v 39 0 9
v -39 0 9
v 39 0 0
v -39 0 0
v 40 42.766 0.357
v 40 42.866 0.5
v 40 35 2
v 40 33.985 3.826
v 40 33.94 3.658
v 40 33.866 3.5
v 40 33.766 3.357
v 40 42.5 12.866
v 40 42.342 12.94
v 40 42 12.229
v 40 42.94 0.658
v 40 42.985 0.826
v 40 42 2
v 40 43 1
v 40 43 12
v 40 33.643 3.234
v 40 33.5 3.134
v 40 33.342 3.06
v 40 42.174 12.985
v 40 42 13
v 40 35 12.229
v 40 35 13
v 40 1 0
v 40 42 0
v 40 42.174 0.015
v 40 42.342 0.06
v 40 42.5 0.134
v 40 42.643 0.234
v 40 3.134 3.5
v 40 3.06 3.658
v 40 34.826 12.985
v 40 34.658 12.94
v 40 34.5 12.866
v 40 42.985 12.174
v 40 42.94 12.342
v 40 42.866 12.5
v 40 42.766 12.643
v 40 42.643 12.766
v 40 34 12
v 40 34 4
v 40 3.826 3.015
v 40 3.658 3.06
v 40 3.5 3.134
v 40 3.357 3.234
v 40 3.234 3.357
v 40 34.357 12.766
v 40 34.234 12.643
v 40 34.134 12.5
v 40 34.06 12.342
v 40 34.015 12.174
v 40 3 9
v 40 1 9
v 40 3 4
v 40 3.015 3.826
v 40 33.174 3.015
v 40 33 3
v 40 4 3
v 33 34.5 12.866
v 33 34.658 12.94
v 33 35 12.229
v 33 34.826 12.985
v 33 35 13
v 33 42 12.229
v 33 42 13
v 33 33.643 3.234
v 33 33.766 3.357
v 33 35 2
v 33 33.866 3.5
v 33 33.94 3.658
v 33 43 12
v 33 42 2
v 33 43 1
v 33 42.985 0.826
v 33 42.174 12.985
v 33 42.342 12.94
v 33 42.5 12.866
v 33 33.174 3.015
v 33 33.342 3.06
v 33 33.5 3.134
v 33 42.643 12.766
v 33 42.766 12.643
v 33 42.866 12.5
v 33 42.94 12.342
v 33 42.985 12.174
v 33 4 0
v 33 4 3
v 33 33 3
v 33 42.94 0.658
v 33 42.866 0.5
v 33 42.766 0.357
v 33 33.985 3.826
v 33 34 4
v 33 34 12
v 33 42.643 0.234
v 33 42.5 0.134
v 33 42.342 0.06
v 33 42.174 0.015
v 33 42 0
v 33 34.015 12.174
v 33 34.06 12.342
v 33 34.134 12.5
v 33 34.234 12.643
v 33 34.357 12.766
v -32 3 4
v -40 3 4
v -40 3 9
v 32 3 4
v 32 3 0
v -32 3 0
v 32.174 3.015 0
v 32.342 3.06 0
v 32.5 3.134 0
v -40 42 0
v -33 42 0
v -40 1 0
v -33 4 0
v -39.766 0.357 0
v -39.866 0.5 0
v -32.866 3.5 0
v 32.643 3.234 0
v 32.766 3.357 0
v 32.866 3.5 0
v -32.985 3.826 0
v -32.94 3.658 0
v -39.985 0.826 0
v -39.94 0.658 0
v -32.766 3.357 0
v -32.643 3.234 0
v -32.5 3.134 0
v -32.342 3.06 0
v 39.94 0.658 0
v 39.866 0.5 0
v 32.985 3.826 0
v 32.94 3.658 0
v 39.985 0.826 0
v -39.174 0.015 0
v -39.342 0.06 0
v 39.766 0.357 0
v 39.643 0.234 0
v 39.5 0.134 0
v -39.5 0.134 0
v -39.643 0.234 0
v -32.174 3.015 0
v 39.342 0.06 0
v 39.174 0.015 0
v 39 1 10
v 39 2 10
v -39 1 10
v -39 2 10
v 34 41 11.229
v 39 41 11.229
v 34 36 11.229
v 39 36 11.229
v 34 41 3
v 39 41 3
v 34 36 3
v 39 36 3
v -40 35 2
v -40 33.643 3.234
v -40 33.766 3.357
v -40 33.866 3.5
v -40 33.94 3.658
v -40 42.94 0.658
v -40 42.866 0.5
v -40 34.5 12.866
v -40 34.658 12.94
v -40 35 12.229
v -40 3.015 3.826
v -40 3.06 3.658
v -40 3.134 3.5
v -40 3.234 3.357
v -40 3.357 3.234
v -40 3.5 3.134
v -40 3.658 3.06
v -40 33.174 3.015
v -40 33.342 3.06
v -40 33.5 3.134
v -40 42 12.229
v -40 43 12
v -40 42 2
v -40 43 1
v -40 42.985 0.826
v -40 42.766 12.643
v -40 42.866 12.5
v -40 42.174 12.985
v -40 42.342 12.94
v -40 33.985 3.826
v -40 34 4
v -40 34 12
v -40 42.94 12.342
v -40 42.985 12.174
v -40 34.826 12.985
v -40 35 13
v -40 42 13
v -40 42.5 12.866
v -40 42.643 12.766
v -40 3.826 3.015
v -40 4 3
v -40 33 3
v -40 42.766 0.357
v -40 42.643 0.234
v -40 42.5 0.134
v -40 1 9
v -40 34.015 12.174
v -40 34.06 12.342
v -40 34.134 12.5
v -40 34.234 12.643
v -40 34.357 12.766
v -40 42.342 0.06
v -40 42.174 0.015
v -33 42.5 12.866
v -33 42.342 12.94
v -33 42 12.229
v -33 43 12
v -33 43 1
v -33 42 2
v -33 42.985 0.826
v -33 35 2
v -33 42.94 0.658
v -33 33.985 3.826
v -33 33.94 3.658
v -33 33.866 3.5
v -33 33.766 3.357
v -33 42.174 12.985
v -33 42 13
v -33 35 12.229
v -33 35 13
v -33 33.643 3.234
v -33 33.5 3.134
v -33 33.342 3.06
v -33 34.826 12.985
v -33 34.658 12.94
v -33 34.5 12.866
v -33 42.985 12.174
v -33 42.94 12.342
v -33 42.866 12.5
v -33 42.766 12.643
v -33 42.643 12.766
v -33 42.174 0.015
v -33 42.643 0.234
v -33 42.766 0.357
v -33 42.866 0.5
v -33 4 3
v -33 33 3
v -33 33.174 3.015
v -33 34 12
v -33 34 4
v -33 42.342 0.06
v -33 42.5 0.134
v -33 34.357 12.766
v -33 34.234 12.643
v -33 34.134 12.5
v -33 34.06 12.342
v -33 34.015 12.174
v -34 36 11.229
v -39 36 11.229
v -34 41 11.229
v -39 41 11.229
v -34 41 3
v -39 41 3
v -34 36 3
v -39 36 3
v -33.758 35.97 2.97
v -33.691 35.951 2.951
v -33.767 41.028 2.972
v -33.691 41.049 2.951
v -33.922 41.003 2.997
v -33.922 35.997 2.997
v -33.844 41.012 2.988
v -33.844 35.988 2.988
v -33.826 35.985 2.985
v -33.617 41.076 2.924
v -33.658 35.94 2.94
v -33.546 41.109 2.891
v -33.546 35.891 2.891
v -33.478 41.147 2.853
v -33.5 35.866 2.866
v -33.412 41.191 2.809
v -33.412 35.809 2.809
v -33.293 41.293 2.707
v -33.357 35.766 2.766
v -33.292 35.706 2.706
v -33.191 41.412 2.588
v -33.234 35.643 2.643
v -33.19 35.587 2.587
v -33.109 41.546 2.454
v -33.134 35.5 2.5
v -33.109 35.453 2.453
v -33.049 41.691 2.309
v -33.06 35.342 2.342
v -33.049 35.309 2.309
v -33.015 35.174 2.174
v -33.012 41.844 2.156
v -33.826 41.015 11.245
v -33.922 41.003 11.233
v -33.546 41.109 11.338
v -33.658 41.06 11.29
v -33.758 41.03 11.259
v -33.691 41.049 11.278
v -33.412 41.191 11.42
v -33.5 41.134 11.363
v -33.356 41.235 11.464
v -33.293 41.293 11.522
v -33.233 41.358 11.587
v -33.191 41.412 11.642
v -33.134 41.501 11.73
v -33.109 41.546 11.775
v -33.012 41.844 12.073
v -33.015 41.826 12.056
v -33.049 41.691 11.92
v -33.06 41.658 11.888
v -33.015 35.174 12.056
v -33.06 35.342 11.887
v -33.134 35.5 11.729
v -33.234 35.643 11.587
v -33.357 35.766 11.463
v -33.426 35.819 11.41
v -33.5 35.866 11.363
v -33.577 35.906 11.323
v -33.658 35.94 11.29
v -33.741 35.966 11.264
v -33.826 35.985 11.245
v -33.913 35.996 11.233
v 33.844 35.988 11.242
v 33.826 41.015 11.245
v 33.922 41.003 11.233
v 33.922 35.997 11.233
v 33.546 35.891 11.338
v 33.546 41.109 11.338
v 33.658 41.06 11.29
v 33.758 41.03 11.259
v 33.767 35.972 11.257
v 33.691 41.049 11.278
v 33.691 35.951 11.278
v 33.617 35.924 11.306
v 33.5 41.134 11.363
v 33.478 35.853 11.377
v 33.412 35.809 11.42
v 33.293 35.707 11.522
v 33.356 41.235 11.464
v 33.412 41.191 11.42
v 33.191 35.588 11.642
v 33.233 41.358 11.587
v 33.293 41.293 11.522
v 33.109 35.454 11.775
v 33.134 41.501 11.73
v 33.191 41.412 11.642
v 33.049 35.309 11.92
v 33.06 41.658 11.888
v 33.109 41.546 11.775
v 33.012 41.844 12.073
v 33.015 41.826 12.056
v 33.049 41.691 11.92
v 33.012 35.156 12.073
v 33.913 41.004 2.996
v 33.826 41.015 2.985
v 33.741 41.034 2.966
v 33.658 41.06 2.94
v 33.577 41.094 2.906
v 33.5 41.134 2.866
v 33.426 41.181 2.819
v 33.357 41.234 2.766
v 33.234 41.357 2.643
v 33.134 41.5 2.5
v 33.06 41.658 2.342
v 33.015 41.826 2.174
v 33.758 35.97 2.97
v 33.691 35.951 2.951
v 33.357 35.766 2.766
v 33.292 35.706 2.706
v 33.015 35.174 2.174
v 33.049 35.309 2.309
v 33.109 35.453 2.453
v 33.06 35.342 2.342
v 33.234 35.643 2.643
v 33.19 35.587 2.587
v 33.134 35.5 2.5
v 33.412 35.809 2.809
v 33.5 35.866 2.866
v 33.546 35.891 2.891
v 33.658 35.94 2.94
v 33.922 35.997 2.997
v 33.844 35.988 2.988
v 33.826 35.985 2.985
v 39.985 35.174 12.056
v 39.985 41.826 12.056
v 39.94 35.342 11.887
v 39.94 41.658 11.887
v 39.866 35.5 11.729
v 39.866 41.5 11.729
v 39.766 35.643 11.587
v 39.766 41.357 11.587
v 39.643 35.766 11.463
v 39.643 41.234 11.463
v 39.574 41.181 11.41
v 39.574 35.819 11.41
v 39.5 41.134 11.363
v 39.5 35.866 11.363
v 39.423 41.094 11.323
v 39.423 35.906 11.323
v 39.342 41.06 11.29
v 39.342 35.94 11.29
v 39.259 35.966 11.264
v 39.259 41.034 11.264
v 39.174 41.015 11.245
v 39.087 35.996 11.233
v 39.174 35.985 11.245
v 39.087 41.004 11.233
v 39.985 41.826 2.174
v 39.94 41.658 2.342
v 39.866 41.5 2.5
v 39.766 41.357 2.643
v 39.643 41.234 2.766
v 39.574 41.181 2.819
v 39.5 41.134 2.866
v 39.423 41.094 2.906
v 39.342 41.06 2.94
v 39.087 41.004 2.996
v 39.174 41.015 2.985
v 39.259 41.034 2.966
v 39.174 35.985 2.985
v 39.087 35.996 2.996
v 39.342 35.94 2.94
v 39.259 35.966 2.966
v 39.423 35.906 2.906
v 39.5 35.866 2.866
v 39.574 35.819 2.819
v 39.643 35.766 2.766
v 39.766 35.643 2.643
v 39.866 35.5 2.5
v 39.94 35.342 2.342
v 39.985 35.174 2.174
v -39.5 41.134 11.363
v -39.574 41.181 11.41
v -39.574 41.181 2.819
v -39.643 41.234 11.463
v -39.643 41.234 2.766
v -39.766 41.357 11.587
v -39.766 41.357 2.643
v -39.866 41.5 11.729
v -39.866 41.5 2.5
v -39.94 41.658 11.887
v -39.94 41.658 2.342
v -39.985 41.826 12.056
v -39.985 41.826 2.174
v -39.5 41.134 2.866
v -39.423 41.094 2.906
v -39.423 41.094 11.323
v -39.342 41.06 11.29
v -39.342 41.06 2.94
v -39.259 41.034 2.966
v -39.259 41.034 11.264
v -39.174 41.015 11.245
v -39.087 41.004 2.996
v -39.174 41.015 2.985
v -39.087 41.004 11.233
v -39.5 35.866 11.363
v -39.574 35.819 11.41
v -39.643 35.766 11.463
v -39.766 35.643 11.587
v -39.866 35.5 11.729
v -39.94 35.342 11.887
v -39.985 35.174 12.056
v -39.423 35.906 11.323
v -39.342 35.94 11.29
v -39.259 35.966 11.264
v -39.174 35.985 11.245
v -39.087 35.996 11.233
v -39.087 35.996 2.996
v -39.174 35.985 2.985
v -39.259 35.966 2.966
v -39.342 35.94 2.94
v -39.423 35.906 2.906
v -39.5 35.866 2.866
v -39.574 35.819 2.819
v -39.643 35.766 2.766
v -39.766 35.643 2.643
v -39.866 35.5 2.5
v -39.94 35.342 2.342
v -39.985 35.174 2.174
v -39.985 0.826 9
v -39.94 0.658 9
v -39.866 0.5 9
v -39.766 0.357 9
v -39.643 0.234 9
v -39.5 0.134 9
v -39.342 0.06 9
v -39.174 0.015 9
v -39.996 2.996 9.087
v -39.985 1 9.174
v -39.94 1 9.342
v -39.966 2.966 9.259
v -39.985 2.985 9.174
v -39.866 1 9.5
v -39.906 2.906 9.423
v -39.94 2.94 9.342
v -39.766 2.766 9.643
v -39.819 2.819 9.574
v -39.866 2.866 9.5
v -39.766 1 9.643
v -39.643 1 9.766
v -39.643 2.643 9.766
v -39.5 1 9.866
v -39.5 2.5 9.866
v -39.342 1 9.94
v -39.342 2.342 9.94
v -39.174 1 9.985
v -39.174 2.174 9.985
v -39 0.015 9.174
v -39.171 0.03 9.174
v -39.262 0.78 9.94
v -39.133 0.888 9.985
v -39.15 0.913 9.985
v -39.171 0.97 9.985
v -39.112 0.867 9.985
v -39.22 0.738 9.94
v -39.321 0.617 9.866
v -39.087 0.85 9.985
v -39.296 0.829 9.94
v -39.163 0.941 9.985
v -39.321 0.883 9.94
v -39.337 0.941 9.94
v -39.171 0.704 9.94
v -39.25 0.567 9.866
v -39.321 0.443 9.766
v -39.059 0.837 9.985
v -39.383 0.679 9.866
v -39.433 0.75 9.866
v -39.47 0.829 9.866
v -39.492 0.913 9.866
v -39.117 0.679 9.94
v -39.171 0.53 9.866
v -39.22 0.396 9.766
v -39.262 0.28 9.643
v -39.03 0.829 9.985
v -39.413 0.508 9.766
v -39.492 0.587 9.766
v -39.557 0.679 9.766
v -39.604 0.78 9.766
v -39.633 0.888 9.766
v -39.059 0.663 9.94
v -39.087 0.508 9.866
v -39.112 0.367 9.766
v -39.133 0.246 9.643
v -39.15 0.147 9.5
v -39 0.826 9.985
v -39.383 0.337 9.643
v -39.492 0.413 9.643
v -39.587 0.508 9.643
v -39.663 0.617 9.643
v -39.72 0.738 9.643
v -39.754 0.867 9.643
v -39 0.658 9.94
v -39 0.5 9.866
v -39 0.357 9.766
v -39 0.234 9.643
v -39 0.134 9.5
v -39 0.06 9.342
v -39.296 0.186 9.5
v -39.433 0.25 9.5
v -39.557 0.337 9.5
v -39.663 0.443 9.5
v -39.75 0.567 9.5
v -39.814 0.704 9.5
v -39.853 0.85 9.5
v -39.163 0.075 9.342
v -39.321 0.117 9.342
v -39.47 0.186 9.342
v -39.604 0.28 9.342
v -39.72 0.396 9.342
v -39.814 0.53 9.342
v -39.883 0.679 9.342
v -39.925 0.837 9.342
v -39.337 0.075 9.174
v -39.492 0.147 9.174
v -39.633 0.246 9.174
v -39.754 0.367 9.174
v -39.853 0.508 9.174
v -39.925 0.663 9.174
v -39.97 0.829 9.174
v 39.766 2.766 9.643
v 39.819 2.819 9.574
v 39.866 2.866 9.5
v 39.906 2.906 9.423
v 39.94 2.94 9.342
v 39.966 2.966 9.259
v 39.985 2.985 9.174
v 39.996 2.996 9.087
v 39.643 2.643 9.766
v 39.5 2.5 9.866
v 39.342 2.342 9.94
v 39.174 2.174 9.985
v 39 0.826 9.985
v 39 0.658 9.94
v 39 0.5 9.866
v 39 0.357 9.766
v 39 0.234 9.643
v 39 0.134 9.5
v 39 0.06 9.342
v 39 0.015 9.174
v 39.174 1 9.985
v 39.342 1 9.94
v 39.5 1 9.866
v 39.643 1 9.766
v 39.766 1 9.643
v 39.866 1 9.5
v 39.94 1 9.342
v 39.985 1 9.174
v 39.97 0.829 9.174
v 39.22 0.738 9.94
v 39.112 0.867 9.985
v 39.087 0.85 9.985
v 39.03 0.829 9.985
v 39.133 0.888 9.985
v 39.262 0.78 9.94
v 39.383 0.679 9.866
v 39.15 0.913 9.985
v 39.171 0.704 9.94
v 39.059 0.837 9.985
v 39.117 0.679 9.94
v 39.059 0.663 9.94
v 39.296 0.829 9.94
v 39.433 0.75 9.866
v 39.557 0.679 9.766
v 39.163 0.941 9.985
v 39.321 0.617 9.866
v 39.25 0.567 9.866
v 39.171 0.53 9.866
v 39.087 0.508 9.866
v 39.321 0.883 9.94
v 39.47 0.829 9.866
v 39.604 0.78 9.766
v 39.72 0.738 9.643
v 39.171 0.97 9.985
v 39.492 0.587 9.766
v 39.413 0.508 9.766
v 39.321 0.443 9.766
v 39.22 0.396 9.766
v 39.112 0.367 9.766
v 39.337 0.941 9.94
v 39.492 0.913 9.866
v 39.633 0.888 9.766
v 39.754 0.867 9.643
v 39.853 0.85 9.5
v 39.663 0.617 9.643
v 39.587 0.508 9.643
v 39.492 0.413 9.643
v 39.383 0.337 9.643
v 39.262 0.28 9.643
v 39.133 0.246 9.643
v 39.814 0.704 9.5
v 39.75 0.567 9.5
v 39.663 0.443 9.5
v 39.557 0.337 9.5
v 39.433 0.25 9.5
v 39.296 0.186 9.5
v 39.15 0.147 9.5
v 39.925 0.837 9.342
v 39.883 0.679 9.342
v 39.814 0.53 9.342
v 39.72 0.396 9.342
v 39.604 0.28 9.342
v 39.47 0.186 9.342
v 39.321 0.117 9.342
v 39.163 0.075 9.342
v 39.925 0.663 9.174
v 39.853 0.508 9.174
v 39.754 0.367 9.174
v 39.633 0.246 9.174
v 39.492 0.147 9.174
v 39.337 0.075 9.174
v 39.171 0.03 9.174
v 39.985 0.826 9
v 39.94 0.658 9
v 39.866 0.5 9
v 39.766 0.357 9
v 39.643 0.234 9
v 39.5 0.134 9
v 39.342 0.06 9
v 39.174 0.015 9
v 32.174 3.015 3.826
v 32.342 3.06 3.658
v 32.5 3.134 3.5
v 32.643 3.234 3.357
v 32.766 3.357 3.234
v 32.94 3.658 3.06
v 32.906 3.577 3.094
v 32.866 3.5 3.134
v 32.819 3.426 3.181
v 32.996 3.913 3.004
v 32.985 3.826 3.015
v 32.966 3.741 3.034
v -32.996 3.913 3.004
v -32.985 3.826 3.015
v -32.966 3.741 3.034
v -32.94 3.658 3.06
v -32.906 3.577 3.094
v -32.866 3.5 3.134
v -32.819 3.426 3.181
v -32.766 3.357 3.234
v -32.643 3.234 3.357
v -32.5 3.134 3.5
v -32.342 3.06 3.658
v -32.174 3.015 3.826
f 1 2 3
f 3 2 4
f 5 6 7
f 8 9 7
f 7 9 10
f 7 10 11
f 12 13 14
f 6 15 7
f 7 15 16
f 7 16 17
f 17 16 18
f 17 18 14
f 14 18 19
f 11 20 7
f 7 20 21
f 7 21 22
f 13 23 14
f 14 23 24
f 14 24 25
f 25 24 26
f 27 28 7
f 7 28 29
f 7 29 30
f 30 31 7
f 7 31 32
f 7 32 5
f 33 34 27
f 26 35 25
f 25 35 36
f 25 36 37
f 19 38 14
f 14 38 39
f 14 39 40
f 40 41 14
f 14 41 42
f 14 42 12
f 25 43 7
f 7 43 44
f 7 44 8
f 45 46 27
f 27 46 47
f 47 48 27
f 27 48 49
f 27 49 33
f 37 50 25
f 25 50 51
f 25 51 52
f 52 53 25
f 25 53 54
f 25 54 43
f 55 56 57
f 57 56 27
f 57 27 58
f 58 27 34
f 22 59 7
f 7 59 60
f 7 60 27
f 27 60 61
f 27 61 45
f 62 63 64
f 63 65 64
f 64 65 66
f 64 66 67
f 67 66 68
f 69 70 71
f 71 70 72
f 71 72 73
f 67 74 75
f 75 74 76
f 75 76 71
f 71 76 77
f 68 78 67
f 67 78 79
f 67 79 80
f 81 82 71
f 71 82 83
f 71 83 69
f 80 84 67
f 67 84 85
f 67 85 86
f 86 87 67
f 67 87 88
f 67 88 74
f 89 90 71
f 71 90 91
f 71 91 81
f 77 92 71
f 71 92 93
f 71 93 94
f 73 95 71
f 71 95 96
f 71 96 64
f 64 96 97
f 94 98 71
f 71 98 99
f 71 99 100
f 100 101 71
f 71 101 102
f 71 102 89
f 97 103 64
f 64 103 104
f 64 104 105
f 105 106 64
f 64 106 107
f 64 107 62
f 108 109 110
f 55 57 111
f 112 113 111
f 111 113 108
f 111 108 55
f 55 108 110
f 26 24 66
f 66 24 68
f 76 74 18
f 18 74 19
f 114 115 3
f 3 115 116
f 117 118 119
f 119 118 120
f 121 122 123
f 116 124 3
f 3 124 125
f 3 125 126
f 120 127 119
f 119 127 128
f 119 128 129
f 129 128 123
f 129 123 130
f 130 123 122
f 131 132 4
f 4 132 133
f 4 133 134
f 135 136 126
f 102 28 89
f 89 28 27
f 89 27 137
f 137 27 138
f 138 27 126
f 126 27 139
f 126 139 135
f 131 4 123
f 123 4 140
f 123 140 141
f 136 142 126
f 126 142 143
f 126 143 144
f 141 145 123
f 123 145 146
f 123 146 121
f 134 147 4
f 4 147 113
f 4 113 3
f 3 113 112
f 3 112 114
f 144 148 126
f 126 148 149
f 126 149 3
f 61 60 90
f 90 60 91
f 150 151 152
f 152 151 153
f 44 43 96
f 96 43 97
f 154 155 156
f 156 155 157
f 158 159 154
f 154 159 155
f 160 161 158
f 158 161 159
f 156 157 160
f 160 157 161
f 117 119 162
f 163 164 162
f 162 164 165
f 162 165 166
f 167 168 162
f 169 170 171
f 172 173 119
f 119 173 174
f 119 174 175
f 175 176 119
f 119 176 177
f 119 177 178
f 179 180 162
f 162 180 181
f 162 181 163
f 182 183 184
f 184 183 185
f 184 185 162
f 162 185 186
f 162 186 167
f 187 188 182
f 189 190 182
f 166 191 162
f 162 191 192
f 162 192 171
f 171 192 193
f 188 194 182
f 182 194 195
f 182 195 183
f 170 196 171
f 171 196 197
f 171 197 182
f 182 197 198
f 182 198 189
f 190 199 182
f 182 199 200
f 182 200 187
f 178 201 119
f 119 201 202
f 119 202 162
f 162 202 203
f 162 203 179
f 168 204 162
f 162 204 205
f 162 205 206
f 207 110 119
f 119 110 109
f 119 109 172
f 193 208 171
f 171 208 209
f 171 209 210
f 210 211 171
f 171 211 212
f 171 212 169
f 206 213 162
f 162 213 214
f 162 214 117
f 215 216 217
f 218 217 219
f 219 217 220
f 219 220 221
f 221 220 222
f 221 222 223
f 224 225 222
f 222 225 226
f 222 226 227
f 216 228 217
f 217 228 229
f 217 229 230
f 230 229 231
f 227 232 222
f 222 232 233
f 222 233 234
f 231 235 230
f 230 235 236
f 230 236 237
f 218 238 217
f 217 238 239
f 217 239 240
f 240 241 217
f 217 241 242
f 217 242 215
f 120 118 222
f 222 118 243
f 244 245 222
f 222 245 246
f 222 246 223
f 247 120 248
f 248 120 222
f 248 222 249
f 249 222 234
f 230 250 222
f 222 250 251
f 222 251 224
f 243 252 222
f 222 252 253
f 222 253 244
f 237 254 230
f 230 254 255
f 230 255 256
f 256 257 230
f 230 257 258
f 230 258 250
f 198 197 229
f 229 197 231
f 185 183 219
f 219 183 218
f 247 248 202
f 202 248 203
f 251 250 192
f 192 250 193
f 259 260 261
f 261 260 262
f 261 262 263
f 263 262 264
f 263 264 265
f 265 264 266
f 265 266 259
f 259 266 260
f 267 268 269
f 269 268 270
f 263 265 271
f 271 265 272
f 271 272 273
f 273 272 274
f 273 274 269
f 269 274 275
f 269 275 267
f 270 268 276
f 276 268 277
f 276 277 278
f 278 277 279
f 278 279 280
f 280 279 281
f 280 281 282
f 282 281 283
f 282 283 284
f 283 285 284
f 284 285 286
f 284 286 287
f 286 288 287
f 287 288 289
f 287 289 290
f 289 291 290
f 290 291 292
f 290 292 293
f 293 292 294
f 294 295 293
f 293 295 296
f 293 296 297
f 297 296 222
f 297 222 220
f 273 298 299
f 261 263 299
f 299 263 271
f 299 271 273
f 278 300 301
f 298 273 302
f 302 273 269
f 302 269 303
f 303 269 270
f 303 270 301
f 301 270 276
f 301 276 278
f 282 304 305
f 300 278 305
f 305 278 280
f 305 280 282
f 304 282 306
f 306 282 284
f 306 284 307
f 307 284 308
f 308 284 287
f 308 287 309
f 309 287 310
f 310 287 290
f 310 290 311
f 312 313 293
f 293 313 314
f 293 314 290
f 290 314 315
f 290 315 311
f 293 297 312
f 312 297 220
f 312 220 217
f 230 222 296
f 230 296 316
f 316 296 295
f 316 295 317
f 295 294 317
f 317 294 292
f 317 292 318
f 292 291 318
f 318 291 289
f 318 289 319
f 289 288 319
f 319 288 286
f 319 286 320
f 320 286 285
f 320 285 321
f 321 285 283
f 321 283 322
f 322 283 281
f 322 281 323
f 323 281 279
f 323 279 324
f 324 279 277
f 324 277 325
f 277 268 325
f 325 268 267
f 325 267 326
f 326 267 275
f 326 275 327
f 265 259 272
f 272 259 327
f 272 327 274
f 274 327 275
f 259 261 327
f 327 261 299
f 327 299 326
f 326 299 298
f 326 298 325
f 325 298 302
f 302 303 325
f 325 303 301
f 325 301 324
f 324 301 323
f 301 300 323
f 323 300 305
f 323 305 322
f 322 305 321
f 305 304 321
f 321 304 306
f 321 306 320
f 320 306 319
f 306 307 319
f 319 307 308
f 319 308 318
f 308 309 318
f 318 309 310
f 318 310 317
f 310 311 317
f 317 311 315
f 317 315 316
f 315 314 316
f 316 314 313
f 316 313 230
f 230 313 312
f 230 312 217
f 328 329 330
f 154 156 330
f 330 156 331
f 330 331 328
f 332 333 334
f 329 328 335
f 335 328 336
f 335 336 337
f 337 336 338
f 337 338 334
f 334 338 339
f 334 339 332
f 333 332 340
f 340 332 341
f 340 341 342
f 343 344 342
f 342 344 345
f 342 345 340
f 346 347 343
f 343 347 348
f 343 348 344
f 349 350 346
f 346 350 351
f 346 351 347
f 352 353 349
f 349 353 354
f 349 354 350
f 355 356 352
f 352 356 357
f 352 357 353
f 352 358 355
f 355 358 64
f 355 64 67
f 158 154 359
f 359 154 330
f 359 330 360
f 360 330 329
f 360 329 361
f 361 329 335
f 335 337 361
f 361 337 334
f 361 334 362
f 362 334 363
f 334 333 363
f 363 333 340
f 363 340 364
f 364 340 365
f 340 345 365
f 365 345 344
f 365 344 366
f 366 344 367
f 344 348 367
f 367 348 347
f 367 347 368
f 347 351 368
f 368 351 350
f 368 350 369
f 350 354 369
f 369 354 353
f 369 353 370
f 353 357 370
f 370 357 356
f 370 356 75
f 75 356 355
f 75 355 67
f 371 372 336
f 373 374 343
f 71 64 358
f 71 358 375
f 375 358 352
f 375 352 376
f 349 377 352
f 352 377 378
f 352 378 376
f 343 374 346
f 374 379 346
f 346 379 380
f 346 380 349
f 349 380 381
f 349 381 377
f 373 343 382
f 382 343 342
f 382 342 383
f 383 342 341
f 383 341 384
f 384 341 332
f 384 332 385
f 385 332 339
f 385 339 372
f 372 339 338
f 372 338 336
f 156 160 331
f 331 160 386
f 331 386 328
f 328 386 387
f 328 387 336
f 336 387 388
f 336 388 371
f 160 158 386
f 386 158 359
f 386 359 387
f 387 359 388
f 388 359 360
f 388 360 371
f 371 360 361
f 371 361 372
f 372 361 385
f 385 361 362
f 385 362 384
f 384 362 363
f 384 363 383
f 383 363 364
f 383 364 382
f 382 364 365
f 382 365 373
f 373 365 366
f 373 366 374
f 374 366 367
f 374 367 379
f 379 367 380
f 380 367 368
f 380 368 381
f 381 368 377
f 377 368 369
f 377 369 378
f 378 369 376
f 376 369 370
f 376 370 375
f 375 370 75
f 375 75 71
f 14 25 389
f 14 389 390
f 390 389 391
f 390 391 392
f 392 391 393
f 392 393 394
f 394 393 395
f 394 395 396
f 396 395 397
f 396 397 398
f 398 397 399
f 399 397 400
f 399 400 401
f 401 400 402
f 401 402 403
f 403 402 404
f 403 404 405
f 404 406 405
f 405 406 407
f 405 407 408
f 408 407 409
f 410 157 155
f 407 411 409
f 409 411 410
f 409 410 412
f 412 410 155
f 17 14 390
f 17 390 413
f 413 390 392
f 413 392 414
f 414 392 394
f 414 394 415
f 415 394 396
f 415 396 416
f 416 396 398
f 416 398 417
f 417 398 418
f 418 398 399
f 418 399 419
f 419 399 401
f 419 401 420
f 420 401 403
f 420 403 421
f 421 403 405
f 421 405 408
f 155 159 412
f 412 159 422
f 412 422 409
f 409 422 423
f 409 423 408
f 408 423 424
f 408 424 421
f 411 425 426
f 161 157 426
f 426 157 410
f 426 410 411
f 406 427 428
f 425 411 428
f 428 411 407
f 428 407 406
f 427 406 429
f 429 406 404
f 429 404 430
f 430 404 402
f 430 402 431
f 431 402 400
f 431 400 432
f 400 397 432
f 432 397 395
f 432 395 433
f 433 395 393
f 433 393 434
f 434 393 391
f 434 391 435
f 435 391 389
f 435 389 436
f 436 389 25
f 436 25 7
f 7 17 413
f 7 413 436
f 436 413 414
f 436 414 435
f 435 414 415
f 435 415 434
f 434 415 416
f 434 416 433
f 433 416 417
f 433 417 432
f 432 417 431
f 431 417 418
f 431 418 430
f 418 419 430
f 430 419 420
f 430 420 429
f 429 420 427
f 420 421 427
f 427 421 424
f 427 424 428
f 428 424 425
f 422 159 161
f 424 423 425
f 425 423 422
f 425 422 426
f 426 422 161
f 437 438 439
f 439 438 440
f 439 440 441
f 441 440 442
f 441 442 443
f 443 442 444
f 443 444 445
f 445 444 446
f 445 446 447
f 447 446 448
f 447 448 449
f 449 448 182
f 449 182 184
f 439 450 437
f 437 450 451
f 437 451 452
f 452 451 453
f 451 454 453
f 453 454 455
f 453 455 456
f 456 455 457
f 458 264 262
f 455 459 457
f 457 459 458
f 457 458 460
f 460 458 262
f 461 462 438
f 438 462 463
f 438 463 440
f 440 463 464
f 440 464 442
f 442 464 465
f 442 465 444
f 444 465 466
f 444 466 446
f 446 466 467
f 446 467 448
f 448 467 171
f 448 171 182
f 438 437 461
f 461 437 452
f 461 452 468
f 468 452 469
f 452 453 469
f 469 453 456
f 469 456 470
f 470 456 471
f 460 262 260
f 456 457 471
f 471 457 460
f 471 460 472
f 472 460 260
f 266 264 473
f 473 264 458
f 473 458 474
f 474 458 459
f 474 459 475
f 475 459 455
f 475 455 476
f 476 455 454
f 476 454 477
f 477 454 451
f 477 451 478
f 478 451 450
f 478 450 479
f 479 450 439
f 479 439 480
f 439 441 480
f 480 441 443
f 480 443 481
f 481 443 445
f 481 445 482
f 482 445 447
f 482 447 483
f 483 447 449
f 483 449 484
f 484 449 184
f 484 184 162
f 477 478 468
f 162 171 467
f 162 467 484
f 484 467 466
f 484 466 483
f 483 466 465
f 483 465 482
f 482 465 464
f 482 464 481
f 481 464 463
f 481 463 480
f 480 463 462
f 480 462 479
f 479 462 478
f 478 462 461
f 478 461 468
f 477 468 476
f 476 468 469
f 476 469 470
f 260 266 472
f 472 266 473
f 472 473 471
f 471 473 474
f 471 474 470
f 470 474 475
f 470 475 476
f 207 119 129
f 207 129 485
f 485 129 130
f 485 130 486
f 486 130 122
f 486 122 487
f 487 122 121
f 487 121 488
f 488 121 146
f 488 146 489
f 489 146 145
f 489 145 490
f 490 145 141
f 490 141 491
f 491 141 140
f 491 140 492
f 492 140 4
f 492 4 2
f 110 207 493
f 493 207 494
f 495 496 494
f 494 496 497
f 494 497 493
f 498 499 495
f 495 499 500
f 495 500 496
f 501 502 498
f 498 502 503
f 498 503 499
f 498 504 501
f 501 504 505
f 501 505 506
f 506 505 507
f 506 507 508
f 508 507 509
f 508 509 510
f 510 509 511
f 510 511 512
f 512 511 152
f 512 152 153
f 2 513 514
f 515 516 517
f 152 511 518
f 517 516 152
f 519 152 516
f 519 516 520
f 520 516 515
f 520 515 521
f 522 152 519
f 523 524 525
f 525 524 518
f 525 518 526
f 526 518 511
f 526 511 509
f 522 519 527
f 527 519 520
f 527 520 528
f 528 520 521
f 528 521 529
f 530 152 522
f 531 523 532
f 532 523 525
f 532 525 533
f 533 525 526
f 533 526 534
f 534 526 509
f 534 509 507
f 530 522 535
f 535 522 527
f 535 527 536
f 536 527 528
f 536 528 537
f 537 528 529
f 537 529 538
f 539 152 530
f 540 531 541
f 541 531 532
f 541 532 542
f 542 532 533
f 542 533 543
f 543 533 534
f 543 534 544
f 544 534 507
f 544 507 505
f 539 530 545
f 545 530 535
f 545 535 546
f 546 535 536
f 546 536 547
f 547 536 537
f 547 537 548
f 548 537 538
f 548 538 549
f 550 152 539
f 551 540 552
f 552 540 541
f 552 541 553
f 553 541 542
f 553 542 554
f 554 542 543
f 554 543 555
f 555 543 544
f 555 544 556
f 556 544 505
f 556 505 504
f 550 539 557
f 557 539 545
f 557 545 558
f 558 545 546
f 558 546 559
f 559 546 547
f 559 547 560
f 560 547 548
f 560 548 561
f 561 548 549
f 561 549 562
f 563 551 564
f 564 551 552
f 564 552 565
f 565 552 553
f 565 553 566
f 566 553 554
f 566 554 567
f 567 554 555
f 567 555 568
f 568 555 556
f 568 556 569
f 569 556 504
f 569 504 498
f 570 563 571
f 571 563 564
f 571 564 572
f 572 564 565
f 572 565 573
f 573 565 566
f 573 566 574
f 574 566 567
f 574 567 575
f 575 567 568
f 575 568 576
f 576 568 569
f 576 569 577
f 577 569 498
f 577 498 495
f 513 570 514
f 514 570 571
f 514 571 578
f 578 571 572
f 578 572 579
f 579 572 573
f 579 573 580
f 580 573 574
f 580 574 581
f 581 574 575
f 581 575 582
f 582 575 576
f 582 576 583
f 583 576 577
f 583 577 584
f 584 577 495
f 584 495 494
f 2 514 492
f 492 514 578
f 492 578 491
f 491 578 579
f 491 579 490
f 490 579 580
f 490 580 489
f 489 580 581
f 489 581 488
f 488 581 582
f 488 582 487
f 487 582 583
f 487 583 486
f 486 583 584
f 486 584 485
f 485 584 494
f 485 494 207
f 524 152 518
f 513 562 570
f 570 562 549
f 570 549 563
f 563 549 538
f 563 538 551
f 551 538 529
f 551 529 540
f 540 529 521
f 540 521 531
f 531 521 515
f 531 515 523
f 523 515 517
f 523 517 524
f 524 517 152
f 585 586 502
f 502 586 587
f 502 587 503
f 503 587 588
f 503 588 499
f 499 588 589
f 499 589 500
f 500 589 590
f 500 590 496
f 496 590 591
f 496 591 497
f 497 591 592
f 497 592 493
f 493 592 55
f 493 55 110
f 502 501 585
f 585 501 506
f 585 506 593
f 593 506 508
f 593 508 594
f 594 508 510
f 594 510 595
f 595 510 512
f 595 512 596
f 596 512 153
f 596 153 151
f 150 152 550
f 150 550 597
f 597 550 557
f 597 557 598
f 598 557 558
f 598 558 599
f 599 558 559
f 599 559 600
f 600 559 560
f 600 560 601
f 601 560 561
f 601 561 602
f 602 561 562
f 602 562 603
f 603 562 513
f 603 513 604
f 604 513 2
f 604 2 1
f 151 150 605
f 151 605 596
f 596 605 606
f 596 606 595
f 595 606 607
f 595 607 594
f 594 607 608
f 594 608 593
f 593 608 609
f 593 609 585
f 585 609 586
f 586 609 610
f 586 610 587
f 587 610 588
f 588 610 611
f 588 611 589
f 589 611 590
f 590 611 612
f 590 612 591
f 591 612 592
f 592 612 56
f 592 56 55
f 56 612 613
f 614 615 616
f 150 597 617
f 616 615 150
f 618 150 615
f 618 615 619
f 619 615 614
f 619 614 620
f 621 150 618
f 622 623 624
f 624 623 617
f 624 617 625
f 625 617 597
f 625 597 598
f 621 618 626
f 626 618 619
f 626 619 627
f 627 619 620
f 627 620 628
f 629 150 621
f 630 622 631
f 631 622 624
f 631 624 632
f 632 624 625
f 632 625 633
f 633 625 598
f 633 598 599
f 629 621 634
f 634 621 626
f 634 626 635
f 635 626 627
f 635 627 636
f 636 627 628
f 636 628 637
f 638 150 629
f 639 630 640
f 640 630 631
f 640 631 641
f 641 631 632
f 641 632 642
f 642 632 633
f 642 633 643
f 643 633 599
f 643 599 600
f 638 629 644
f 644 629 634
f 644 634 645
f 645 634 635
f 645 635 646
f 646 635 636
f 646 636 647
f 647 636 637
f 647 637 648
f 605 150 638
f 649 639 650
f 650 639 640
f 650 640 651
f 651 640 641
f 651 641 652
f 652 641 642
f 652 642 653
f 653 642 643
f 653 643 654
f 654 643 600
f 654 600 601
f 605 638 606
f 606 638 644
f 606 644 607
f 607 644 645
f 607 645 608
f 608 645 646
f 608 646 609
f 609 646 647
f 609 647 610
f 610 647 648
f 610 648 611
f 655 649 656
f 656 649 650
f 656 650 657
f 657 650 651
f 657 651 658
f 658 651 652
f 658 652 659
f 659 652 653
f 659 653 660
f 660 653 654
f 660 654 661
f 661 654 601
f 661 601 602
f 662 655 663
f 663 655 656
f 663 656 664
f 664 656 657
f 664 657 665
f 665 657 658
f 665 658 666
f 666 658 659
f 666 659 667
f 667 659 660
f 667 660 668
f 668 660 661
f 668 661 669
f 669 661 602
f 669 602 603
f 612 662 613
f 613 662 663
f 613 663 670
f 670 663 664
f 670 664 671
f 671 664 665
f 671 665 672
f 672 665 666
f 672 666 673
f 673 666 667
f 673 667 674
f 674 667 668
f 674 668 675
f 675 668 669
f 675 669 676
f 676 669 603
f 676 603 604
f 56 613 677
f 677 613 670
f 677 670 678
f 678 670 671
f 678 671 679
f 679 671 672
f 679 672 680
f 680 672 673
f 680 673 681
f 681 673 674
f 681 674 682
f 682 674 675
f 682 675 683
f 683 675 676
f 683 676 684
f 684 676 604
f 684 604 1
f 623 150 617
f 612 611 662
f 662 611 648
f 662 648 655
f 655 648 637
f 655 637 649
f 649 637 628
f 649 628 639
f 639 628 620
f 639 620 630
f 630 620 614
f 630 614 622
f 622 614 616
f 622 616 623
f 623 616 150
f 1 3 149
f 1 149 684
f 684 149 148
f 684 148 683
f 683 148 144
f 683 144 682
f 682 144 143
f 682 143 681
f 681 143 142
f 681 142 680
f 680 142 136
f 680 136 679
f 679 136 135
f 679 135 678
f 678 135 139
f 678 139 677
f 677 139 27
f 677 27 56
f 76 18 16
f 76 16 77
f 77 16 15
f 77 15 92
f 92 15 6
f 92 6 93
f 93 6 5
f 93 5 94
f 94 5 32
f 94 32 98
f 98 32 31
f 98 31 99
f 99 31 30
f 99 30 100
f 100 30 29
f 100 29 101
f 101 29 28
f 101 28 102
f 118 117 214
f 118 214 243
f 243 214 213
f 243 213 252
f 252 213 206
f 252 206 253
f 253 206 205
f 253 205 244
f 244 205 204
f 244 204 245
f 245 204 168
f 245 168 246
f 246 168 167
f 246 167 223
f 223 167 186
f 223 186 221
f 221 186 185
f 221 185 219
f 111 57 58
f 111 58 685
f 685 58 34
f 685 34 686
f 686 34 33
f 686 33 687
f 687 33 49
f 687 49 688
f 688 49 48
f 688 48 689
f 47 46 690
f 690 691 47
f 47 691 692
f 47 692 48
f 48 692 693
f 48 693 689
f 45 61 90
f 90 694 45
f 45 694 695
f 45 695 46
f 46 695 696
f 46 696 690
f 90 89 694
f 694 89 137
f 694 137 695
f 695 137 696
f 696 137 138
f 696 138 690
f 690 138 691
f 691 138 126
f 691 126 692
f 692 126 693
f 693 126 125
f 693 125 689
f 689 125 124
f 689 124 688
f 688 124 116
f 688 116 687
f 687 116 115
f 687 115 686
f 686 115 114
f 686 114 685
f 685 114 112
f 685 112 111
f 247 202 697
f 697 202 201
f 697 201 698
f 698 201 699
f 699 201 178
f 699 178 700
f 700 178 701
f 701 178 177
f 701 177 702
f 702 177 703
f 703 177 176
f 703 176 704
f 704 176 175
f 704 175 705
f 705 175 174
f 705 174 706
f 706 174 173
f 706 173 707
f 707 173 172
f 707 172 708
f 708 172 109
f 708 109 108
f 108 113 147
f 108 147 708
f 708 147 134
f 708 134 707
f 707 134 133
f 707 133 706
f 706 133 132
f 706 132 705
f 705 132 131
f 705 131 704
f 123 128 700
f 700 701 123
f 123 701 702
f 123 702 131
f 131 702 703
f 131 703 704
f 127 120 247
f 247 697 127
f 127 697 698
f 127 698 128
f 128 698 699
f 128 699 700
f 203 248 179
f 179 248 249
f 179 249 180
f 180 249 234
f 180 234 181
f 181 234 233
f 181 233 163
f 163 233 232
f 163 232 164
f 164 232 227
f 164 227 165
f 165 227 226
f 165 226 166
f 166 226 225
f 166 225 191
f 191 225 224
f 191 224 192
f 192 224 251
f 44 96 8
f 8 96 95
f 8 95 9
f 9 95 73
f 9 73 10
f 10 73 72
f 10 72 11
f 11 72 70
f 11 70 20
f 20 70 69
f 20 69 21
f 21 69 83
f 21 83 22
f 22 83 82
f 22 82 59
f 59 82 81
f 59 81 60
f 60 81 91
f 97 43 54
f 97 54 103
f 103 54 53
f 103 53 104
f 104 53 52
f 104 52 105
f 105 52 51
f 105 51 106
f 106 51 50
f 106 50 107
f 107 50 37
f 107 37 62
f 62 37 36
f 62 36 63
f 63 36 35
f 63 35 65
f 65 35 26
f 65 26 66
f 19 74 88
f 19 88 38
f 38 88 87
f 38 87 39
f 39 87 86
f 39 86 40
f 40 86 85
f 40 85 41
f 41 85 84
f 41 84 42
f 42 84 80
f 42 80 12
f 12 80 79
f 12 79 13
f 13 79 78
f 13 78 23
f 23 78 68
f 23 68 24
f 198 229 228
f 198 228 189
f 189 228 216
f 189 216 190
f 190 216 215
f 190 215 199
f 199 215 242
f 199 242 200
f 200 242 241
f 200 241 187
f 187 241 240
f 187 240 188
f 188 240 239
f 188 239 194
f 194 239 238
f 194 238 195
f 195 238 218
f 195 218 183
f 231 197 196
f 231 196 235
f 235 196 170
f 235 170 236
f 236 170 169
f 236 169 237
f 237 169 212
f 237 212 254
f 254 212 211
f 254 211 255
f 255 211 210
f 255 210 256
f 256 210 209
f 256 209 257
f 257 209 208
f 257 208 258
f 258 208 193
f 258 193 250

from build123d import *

# Parameters (mm, degrees)
BOSS_EXTRUDE1_DEPTH = 13
SKETCH2_W           = 8.229441325
SKETCH2_H           = 5
CUT_EXTRUDE1_DEPTH  = 100
FILLET1_R           = 1


with BuildPart() as part:
    # Sketch1 → Boss-Extrude1 (new body)
    with BuildSketch(Plane.XY):
        Polygon((0, 0), (40, 0), (40, 43), (33, 43), (33, 3), (0, 3), align=None)
    extrude(amount=BOSS_EXTRUDE1_DEPTH)

    # Sketch2 → Cut-Extrude1 (cut)
    with BuildSketch(Plane(origin=(40, 0, 0), x_dir=(0, 0, -1), z_dir=(1, 0, 0))):
        Polygon((-3, 34), (-13, 34), (-13, 0), (-10, 0), (-10, 3), (-3, 3), align=None)
        with Locations((-7.114720663, 38.5)):
            Rectangle(SKETCH2_W, SKETCH2_H)
    extrude(amount=-CUT_EXTRUDE1_DEPTH, mode=Mode.SUBTRACT)

    # Mirror2: part across plane


with BuildPart() as part_1:
    add(part.part)
    add(part.part.mirror(Plane(origin=(0, 0, 13), x_dir=(0, 0, 1), z_dir=(1, 0, 0))))

    # Fillet1
    fillet1_edges = [part_1.edges().sort_by_distance(p)[0] for p in [
        (-40, 0, 5),
        (0, 0, 10),
        (40, 0, 5),
        (40, 1.5, 10),
        (40, 38.5, 3),
        (40, 36, 7.114720663),
        (40, 38.5, 11.229441325),
        (40, 41, 7.114720663),
        (33, 41, 7.114720663),
        (33, 3, 1.5),
        (33, 38.5, 11.229441325),
        (33, 36, 7.114720663),
        (33, 38.5, 3),
        (36.5, 3, 3),
        (0, 3, 10),
        (-36.5, 3, 3),
        (-33, 3, 1.5),
        (-33, 41, 7.114720663),
        (-33, 38.5, 11.229441325),
        (-33, 36, 7.114720663),
        (-33, 38.5, 3),
        (-40, 38.5, 3),
        (-40, 36, 7.114720663),
        (-40, 38.5, 11.229441325),
        (-40, 41, 7.114720663),
        (-36.5, 43, 0),
        (-36.5, 43, 13),
        (-36.5, 34, 13),
        (-36.5, 34, 3),
        (36.5, 34, 3),
        (36.5, 34, 13),
        (36.5, 43, 13),
        (36.5, 43, 0),
        (-40, 1.5, 10),
    ]]
    fillet(fillet1_edges, radius=FILLET1_R)


solid = part_1.part
